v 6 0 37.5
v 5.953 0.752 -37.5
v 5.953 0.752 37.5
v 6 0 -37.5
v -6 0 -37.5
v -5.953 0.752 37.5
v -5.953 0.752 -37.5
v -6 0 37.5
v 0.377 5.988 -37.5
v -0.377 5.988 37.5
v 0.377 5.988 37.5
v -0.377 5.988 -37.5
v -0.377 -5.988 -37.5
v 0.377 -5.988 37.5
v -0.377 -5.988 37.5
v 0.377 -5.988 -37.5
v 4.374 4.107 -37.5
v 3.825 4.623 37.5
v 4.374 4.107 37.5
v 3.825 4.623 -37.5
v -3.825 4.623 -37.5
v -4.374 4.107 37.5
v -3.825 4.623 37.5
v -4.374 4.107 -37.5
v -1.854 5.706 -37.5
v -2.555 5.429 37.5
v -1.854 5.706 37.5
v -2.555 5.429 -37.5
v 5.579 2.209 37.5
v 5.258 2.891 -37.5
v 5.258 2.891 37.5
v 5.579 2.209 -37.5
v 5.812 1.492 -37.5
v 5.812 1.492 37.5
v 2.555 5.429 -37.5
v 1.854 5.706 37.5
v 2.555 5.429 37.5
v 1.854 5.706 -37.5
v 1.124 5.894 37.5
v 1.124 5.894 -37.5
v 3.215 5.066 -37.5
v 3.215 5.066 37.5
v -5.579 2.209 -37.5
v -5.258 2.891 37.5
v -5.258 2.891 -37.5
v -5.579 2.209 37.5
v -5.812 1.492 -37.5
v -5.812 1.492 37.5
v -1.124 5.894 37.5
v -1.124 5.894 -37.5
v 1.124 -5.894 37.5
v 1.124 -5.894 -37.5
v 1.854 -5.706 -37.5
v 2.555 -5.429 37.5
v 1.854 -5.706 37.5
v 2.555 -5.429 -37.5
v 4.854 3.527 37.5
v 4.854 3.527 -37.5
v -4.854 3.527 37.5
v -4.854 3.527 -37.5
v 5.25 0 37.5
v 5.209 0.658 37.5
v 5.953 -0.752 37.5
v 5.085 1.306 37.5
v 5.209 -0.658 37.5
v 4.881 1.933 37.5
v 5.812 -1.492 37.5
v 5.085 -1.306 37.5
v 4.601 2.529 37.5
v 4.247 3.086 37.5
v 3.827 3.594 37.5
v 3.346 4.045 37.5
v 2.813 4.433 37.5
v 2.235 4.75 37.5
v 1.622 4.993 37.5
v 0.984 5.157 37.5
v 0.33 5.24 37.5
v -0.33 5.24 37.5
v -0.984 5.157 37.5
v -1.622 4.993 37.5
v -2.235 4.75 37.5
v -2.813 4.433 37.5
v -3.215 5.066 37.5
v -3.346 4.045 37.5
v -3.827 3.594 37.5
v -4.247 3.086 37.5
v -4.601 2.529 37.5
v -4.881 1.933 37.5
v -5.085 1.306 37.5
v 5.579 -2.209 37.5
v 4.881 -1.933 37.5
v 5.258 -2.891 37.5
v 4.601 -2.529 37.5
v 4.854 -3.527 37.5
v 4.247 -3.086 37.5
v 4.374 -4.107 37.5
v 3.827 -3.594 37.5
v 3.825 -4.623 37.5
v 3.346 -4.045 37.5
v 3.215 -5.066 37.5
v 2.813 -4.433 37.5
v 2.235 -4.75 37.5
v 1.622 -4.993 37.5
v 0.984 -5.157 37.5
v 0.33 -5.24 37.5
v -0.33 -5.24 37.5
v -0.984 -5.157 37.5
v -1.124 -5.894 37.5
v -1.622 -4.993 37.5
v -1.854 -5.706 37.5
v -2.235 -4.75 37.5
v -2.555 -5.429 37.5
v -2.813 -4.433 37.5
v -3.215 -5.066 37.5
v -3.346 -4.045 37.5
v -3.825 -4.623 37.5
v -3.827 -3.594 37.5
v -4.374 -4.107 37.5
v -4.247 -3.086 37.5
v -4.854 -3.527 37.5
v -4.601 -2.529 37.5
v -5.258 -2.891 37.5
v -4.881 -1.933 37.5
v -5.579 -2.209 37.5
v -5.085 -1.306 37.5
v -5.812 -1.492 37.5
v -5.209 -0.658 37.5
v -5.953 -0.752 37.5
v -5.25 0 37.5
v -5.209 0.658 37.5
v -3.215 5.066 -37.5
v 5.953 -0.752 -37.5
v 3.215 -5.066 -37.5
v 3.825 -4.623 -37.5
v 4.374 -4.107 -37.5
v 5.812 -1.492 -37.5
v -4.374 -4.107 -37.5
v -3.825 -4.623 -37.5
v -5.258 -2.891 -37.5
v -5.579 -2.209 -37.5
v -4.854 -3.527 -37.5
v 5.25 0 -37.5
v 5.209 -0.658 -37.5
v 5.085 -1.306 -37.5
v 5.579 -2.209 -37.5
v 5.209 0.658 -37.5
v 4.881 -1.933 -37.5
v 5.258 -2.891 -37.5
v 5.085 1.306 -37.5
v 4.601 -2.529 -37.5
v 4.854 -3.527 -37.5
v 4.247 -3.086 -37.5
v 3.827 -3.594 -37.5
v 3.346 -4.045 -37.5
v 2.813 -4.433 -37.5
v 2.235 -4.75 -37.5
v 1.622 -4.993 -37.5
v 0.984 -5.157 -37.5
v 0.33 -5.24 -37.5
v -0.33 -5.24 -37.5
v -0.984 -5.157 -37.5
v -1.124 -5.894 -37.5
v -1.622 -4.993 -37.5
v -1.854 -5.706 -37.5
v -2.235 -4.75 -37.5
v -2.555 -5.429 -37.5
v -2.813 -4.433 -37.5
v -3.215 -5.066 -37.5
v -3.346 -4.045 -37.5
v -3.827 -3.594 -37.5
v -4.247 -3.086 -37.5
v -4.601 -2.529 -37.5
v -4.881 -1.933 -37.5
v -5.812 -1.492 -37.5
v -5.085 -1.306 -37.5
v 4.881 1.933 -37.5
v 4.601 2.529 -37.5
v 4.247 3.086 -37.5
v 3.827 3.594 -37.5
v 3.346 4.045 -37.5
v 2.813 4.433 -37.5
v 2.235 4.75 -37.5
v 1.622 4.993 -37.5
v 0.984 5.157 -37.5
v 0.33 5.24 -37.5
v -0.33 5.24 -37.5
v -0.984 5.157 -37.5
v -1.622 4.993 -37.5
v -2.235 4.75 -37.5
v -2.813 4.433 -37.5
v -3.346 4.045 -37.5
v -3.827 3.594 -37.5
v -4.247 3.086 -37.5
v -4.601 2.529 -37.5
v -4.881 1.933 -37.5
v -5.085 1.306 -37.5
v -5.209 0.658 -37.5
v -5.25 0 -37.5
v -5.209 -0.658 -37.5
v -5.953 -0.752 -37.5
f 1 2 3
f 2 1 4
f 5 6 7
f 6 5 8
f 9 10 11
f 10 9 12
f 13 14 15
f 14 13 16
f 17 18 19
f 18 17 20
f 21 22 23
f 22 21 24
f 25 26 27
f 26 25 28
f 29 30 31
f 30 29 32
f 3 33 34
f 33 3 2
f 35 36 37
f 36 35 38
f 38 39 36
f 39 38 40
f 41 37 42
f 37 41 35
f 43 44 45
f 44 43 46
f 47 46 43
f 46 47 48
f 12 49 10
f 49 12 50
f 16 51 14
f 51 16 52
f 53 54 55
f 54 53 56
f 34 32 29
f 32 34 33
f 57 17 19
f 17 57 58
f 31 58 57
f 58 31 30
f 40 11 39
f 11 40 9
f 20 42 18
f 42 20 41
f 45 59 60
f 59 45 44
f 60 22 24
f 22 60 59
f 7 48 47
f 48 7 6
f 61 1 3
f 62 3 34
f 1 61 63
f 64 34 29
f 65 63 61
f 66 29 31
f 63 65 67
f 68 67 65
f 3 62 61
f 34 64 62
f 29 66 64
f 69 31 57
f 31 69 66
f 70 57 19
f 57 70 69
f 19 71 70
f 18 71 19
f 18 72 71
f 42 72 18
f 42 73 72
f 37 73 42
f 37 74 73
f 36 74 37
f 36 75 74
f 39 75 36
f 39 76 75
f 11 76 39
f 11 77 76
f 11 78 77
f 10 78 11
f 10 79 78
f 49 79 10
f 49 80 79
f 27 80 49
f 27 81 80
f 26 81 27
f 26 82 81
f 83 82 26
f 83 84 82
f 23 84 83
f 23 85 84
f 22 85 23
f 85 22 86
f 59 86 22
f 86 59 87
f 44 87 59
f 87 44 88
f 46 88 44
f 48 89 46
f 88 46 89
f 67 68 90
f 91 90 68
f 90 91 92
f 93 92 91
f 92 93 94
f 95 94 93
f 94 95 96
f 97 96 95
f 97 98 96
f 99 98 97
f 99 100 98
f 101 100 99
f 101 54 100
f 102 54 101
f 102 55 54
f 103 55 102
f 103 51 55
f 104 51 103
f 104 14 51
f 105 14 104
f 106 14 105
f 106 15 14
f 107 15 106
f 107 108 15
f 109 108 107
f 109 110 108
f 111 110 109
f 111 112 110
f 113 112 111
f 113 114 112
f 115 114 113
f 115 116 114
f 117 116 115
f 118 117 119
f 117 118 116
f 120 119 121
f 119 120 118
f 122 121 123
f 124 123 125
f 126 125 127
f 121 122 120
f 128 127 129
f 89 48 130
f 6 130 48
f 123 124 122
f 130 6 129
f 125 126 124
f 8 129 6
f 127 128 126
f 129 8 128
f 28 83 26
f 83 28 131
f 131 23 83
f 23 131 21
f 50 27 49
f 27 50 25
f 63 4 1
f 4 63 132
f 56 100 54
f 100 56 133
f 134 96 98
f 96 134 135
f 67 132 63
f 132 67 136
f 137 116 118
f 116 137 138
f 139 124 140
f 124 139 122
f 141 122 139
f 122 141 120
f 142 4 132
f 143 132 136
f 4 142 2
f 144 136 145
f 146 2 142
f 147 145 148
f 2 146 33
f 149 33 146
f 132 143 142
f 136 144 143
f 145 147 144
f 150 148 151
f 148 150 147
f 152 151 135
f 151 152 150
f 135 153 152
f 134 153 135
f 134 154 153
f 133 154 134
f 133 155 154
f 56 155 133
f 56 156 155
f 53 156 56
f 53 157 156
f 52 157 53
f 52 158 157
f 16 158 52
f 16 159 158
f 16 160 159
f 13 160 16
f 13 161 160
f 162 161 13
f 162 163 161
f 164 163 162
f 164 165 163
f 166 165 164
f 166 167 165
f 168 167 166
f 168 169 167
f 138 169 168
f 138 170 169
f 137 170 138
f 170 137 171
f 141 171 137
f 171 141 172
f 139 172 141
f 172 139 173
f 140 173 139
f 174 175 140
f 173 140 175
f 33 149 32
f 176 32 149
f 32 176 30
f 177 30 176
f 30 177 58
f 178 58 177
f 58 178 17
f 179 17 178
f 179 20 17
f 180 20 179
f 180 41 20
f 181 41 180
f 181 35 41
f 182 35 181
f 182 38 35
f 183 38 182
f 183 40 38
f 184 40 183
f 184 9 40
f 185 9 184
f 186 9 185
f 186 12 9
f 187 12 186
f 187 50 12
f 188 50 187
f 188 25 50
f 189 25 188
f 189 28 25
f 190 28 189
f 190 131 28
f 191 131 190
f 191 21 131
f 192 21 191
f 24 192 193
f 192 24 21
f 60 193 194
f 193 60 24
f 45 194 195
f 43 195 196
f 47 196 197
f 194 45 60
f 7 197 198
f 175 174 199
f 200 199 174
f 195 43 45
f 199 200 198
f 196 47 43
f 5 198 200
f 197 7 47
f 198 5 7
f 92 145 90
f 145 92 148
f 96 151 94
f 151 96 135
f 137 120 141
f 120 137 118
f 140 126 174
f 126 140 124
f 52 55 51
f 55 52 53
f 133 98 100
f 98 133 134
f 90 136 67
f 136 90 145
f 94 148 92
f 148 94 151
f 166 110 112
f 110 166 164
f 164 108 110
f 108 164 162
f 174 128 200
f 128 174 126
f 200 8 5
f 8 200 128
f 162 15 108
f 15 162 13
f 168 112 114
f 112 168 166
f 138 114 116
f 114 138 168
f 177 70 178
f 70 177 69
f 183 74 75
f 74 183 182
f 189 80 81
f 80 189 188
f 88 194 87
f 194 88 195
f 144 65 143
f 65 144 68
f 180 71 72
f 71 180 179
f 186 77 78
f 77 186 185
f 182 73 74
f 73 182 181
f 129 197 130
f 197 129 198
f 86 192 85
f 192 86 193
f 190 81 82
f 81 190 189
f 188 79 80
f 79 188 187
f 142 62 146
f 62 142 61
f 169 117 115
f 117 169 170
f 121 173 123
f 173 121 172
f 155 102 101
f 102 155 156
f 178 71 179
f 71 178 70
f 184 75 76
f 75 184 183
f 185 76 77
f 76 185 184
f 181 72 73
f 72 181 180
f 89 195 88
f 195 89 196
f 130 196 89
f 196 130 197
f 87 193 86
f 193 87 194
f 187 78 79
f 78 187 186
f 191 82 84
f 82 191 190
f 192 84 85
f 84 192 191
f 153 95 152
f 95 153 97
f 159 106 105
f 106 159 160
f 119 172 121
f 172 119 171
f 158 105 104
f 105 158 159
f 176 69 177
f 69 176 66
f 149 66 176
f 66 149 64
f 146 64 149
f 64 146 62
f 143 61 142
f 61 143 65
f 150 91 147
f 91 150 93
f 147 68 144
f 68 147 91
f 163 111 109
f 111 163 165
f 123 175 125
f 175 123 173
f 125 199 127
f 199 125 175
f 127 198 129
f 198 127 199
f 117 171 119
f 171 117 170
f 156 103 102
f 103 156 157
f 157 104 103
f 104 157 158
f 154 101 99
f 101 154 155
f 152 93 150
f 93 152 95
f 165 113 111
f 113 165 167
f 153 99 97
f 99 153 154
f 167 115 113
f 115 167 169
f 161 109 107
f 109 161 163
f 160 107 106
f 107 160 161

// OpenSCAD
$fn = 50;


difference() {
	union() {
		translate(v = [0, 0, -37.5000000000]) {
			cylinder(h = 75, r = 6.0000000000);
		}
	}
	union() {
		translate(v = [0, 0, -100.0000000000]) {
			cylinder(h = 200, r = 5.2500000000);
		}
	}
}
